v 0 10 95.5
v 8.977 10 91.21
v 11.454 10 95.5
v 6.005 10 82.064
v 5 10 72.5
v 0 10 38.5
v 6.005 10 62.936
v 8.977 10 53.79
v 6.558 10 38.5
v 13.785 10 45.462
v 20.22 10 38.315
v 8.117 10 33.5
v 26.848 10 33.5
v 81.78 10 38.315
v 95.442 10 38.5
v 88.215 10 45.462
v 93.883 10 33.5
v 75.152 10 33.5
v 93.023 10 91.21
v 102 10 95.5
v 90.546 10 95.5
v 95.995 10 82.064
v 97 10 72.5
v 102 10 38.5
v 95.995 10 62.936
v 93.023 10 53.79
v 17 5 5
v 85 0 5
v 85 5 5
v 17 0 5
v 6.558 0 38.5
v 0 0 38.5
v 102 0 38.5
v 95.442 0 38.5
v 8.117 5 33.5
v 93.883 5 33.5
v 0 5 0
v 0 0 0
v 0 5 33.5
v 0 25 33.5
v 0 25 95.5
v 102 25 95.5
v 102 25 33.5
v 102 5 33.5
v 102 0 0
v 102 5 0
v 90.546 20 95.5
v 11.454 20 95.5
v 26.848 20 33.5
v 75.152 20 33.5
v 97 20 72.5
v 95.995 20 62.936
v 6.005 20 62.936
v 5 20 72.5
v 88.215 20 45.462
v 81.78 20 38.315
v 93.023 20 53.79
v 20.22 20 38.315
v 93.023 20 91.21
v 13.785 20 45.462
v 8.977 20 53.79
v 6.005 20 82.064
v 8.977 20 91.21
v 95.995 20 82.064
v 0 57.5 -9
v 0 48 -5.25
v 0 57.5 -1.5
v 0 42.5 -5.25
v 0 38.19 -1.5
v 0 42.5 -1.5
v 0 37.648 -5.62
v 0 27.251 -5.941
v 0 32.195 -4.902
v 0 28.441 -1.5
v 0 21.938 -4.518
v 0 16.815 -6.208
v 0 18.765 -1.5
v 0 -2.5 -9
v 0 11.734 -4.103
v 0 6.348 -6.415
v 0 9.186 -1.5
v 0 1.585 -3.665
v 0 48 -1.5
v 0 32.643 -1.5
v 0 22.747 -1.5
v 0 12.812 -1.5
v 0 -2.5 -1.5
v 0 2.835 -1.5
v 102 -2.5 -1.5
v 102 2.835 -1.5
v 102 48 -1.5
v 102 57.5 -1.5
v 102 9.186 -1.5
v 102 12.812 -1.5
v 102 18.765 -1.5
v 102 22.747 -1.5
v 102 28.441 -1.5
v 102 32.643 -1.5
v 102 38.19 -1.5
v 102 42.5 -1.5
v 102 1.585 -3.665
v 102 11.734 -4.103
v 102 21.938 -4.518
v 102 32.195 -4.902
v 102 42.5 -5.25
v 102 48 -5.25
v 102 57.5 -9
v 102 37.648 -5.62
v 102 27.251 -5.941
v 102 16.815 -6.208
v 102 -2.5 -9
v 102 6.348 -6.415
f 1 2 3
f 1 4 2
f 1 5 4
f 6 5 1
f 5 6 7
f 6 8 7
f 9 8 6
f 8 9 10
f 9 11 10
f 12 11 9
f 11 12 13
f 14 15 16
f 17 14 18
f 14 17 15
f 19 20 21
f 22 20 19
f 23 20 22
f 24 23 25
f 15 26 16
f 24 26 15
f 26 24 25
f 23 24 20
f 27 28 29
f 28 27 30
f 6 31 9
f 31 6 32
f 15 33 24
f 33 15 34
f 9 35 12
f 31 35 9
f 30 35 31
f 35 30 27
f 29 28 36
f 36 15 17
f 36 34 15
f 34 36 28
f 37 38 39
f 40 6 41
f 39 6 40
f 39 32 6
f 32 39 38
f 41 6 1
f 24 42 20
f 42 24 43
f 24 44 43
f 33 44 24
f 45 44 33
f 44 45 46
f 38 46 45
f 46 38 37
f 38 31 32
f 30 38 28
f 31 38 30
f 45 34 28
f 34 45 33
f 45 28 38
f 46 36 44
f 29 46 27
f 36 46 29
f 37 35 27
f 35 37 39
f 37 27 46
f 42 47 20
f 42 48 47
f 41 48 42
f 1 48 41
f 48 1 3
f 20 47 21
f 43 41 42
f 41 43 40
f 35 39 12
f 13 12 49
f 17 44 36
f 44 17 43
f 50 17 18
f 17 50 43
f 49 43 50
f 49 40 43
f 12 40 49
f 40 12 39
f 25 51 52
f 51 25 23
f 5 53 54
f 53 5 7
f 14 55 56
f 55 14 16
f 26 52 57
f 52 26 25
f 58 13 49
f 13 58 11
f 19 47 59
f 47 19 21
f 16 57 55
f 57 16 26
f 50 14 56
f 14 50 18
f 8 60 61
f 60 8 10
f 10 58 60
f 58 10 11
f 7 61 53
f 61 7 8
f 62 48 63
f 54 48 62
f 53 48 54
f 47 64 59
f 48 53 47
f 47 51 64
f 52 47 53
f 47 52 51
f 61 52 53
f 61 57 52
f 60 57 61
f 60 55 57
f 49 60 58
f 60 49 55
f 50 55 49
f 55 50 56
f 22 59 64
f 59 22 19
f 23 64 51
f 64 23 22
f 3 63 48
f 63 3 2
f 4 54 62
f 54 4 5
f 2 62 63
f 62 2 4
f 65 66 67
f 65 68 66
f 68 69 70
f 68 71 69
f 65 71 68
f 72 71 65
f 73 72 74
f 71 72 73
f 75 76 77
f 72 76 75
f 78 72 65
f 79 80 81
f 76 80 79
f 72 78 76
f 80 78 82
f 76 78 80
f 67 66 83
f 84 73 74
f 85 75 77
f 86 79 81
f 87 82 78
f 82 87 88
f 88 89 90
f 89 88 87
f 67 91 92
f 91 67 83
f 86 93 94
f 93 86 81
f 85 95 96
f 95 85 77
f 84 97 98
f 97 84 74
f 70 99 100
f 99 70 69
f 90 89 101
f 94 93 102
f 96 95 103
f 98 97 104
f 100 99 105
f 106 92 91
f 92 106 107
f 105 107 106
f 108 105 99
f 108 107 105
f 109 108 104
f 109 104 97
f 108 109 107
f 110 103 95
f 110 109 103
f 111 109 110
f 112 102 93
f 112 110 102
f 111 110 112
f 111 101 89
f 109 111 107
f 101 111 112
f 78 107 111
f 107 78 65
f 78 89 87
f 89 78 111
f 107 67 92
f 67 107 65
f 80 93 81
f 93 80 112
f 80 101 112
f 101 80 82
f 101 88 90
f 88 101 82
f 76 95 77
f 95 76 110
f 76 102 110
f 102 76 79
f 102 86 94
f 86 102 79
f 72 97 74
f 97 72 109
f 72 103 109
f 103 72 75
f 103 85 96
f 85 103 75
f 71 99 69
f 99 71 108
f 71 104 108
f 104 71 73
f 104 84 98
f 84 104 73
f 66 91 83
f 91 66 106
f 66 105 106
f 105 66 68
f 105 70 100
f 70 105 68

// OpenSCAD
union(){
    difference(){
        cube(size=[101.99999999999999, 5.0, 72.5]);
        union(){
            translate(v=[16.999999999999993, -0.01, 5.0]){
                cube(size=[68.0, 10.01, 135.0]);
            };
            translate(v=[-16.500000000000007, -0.01, 106.5]){
                rotate(a=[0, 90, 0]){
                    cube(size=[68.0, 10.01, 135.0]);
                };
            };
        };
        union(){
            translate(v=[16.999999999999993, -0.01, 5.0]){
                rotate(a=[0, -17.311646108846574, 0]){
                    cube(size=[68.0, 10.01, 135.0]);
                };
            };
            translate(v=[85.0, -0.01, 5.0]){
                scale(v=[-1, 1, 1]){
                    rotate(a=[0, -17.311646108846574, 0]){
                        cube(size=[68.0, 10.01, 135.0]);
                    };
                };
            };
        };
    };
    difference(){
        translate(v=[0, 0, 33.5]){
            cube(size=[101.99999999999999, 25.0, 62.0]);
        };
        translate(v=[50.99999999999999, 9.99, 72.5]){
            rotate(a=[-90, 0, 0]){
                cylinder(h=10.01, r=45.99999999999999);
            };
        };
        union(){
            translate(v=[16.999999999999993, -0.01, 5.0]){
                cube(size=[68.0, 10.01, 135.0]);
            };
            translate(v=[-16.500000000000007, -0.01, 106.5]){
                rotate(a=[0, 90, 0]){
                    cube(size=[68.0, 10.01, 135.0]);
                };
            };
        };
        union(){
            translate(v=[16.999999999999993, -0.01, 5.0]){
                rotate(a=[0, -17.311646108846574, 0]){
                    cube(size=[68.0, 10.01, 135.0]);
                };
            };
            translate(v=[85.0, -0.01, 5.0]){
                scale(v=[-1, 1, 1]){
                    rotate(a=[0, -17.311646108846574, 0]){
                        cube(size=[68.0, 10.01, 135.0]);
                    };
                };
            };
        };
    };
    translate(v=[0, 0, -5.0]){
        difference(){
            translate(v=[0, -2.5, -4.0]){
                cube(size=[101.99999999999999, 60.0, 7.5]);
            };
            translate(v=[-0.01, 5.0, 2.25]){
                rotate(a=[-30.0, 0, 0]){
                    translate(v=[0, -2.5, -2.5]){
                        cube(size=[102.01999999999998, 5.5, 10.0]);
                    };
                };
            };
            translate(v=[-0.01, 15.0, 2.25]){
                rotate(a=[-22.5, 0, 0]){
                    translate(v=[0, -2.5, -2.5]){
                        cube(size=[102.01999999999998, 5.5, 10.0]);
                    };
                };
            };
            translate(v=[-0.01, 25.0, 2.25]){
                rotate(a=[-15.0, 0, 0]){
                    translate(v=[0, -2.5, -2.5]){
                        cube(size=[102.01999999999998, 5.5, 10.0]);
                    };
                };
            };
            translate(v=[-0.01, 35.0, 2.25]){
                rotate(a=[-7.5, 0, 0]){
                    translate(v=[0, -2.5, -2.5]){
                        cube(size=[102.01999999999998, 5.5, 10.0]);
                    };
                };
            };
            translate(v=[-0.01, 45.0, 2.25]){
                rotate(a=[0.0, 0, 0]){
                    translate(v=[0, -2.5, -2.5]){
                        cube(size=[102.01999999999998, 5.5, 10.0]);
                    };
                };
            };
        };
    };
};
